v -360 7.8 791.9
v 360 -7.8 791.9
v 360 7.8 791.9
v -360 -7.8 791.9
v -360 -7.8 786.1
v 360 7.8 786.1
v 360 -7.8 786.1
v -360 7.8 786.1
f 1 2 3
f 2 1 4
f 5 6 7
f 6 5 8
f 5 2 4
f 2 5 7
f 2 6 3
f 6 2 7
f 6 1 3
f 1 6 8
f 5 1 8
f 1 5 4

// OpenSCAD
// file: parts.scad
$fn=40;

// ---- 桌腿 ----

module leg(){
  difference(){
    union(){
      translate([390.000,390.000,0.000]) cube([60.000,60.000,750.000]);
      translate([400.000,400.000,750.000]) cube([40.000,40.000,20.000]);
    }
    // 牙板透榫槽（沿 +x，+y 侧牙板 A 端穿入）
    translate([389.000,426.800,699.800]) cube([62.000,14.400,40.400]);
    // 牙板闷榫槽（沿 +y，+x 侧牙板 B 端）
    translate([426.800,389.000,699.800]) cube([14.400,23.200,40.400]);
  }
}

// ---- 边框 ----

module rail(){
  difference(){
    union(){
      translate([0,0,750]) linear_extrude(height=50) polygon(points=[[-370,370],[370,370],[450.0,450.0],[-450.0,450.0]]);
      translate([420.607,399.393,779.0]) rotate([0,0,-45]) cube([34,40,10],center=true);
    }
    // 面板槽：全长开通至 45° 端面（角部两框的槽合起来成 L 形）
    translate([-450.000,370.000,785.800]) cube([900.000,14.000,6.400]);
    // 腿顶榫卯（两端各半，合起来 40x40x20）
    translate([399.800,399.800,750.000]) cube([40.400,40.400,20.400]);
    translate([-440.200,399.800,750.000]) cube([40.400,40.400,20.400]);
    // 格角暗榫卯
    translate([-398.545,421.455,779.0]) rotate([0,0,45]) cube([34.4,40.4,10.4],center=true);
    // 竹销孔：+x 端穿暗榫，-x 端穿本体
    translate([418,384,750]) cylinder(h=34,r=4.0,$fn=40);
    translate([-384,418,750]) cylinder(h=34,r=4.0,$fn=40);
  }
}

// ---- 牙板 ----

module apron(){
  difference(){
    union(){
      translate([-390.000,424.000,680.000]) cube([780.000,20.000,70.000]);
      // A 端：透榫（390..460）
      translate([390.000,427.000,700.000]) cube([70.000,14.000,40.000]);
      // B 端：闷榫（-412..-390）
      translate([-412.000,427.000,700.000]) cube([22.000,14.000,40.000]);
    }
    hull(){ translate([375.000,423.500,680.000]) cube([15.000,21.000,0.200]); translate([389.800,423.500,680.000]) cube([0.200,21.000,15.000]); }
    hull(){ translate([-390.000,423.500,680.000]) cube([15.000,21.000,0.200]); translate([-390.000,423.500,680.000]) cube([0.200,21.000,15.000]); }
    // 透榫楔槽（横槽，撑开榫头上下两片）
    translate([428.000,426.900,718.400]) cube([32.200,14.200,3.200]);
  }
}

// ---- 面板-边板 ----

module panel_outer(){
  difference(){
    union(){
      translate([-365.000,-365.000,778.000]) cube([730.000,244.000,22.000]);
      translate([0,0,786]) linear_extrude(height=6) polygon(points=[[-379,-121],[-379,-377],[-377,-379],[377,-379],[379,-377],[379,-121],[365,-121],[365,-365],[-365,-365],[-365,-121]]);
    }
    // 内侧龙凤榫槽（向板内 8 深：y -129..-121）
    translate([-365.000,-129.000,785.800]) cube([730.000,8.000,6.400]);
    // 穿带燕尾槽
    hull(){ translate([-259.200,-365.000,778.000]) cube([30.400,244.000,0.100]); translate([-266.200,-365.000,783.900]) cube([44.400,244.000,0.100]); }
    hull(){ translate([-15.200,-365.000,778.000]) cube([30.400,244.000,0.100]); translate([-22.200,-365.000,783.900]) cube([44.400,244.000,0.100]); }
    hull(){ translate([228.800,-365.000,778.000]) cube([30.400,244.000,0.100]); translate([221.800,-365.000,783.900]) cube([44.400,244.000,0.100]); }
  }
}

// ---- 面板-中板 ----

module panel_middle(){
  difference(){
    union(){
      translate([-365.000,-121.000,778.000]) cube([730.000,242.000,22.000]);
      translate([365.000,-121.000,786.000]) cube([14.000,242.000,6.000]);
      translate([-379.000,-121.000,786.000]) cube([14.000,242.000,6.000]);
    }
    // 两侧龙凤榫槽（各向板内 8 深）
    translate([-365.000,-121.000,785.800]) cube([730.000,8.000,6.400]);
    translate([-365.000,113.000,785.800]) cube([730.000,8.000,6.400]);
    hull(){ translate([-259.200,-121.000,778.000]) cube([30.400,242.000,0.100]); translate([-266.200,-121.000,783.900]) cube([44.400,242.000,0.100]); }
    hull(){ translate([-15.200,-121.000,778.000]) cube([30.400,242.000,0.100]); translate([-22.200,-121.000,783.900]) cube([44.400,242.000,0.100]); }
    hull(){ translate([228.800,-121.000,778.000]) cube([30.400,242.000,0.100]); translate([221.800,-121.000,783.900]) cube([44.400,242.000,0.100]); }
  }
}

// ---- 穿带 ----

module cleat(){
  union(){
    translate([-20.000,-363.000,752.000]) cube([40.000,726.000,26.000]);
    hull(){
      translate([-15.000,-363.000,777.900]) cube([30.000,726.000,0.050]);
      translate([-22.000,-363.000,783.800]) cube([44.000,726.000,0.100]);
    }
  }
}

// ---- 穿簧 ----
module spline(){ translate([-360.000,-7.800,786.100]) cube([720.000,15.600,5.800]); }
// ---- 木楔 ----
module wedge(){ hull(){ translate([435.000,427.400,719.400]) cube([1.000,13.200,1.200]); translate([467.000,427.400,718.500]) cube([1.000,13.200,3.000]); } }
// ---- 竹销 ----
module pin(){ translate([0,0,750]) cylinder(h=34,r=4.0,$fn=40); }
// main file
// 穿簧（0° 基准件，位于整机坐标系中）
include <parts.scad>
spline();
